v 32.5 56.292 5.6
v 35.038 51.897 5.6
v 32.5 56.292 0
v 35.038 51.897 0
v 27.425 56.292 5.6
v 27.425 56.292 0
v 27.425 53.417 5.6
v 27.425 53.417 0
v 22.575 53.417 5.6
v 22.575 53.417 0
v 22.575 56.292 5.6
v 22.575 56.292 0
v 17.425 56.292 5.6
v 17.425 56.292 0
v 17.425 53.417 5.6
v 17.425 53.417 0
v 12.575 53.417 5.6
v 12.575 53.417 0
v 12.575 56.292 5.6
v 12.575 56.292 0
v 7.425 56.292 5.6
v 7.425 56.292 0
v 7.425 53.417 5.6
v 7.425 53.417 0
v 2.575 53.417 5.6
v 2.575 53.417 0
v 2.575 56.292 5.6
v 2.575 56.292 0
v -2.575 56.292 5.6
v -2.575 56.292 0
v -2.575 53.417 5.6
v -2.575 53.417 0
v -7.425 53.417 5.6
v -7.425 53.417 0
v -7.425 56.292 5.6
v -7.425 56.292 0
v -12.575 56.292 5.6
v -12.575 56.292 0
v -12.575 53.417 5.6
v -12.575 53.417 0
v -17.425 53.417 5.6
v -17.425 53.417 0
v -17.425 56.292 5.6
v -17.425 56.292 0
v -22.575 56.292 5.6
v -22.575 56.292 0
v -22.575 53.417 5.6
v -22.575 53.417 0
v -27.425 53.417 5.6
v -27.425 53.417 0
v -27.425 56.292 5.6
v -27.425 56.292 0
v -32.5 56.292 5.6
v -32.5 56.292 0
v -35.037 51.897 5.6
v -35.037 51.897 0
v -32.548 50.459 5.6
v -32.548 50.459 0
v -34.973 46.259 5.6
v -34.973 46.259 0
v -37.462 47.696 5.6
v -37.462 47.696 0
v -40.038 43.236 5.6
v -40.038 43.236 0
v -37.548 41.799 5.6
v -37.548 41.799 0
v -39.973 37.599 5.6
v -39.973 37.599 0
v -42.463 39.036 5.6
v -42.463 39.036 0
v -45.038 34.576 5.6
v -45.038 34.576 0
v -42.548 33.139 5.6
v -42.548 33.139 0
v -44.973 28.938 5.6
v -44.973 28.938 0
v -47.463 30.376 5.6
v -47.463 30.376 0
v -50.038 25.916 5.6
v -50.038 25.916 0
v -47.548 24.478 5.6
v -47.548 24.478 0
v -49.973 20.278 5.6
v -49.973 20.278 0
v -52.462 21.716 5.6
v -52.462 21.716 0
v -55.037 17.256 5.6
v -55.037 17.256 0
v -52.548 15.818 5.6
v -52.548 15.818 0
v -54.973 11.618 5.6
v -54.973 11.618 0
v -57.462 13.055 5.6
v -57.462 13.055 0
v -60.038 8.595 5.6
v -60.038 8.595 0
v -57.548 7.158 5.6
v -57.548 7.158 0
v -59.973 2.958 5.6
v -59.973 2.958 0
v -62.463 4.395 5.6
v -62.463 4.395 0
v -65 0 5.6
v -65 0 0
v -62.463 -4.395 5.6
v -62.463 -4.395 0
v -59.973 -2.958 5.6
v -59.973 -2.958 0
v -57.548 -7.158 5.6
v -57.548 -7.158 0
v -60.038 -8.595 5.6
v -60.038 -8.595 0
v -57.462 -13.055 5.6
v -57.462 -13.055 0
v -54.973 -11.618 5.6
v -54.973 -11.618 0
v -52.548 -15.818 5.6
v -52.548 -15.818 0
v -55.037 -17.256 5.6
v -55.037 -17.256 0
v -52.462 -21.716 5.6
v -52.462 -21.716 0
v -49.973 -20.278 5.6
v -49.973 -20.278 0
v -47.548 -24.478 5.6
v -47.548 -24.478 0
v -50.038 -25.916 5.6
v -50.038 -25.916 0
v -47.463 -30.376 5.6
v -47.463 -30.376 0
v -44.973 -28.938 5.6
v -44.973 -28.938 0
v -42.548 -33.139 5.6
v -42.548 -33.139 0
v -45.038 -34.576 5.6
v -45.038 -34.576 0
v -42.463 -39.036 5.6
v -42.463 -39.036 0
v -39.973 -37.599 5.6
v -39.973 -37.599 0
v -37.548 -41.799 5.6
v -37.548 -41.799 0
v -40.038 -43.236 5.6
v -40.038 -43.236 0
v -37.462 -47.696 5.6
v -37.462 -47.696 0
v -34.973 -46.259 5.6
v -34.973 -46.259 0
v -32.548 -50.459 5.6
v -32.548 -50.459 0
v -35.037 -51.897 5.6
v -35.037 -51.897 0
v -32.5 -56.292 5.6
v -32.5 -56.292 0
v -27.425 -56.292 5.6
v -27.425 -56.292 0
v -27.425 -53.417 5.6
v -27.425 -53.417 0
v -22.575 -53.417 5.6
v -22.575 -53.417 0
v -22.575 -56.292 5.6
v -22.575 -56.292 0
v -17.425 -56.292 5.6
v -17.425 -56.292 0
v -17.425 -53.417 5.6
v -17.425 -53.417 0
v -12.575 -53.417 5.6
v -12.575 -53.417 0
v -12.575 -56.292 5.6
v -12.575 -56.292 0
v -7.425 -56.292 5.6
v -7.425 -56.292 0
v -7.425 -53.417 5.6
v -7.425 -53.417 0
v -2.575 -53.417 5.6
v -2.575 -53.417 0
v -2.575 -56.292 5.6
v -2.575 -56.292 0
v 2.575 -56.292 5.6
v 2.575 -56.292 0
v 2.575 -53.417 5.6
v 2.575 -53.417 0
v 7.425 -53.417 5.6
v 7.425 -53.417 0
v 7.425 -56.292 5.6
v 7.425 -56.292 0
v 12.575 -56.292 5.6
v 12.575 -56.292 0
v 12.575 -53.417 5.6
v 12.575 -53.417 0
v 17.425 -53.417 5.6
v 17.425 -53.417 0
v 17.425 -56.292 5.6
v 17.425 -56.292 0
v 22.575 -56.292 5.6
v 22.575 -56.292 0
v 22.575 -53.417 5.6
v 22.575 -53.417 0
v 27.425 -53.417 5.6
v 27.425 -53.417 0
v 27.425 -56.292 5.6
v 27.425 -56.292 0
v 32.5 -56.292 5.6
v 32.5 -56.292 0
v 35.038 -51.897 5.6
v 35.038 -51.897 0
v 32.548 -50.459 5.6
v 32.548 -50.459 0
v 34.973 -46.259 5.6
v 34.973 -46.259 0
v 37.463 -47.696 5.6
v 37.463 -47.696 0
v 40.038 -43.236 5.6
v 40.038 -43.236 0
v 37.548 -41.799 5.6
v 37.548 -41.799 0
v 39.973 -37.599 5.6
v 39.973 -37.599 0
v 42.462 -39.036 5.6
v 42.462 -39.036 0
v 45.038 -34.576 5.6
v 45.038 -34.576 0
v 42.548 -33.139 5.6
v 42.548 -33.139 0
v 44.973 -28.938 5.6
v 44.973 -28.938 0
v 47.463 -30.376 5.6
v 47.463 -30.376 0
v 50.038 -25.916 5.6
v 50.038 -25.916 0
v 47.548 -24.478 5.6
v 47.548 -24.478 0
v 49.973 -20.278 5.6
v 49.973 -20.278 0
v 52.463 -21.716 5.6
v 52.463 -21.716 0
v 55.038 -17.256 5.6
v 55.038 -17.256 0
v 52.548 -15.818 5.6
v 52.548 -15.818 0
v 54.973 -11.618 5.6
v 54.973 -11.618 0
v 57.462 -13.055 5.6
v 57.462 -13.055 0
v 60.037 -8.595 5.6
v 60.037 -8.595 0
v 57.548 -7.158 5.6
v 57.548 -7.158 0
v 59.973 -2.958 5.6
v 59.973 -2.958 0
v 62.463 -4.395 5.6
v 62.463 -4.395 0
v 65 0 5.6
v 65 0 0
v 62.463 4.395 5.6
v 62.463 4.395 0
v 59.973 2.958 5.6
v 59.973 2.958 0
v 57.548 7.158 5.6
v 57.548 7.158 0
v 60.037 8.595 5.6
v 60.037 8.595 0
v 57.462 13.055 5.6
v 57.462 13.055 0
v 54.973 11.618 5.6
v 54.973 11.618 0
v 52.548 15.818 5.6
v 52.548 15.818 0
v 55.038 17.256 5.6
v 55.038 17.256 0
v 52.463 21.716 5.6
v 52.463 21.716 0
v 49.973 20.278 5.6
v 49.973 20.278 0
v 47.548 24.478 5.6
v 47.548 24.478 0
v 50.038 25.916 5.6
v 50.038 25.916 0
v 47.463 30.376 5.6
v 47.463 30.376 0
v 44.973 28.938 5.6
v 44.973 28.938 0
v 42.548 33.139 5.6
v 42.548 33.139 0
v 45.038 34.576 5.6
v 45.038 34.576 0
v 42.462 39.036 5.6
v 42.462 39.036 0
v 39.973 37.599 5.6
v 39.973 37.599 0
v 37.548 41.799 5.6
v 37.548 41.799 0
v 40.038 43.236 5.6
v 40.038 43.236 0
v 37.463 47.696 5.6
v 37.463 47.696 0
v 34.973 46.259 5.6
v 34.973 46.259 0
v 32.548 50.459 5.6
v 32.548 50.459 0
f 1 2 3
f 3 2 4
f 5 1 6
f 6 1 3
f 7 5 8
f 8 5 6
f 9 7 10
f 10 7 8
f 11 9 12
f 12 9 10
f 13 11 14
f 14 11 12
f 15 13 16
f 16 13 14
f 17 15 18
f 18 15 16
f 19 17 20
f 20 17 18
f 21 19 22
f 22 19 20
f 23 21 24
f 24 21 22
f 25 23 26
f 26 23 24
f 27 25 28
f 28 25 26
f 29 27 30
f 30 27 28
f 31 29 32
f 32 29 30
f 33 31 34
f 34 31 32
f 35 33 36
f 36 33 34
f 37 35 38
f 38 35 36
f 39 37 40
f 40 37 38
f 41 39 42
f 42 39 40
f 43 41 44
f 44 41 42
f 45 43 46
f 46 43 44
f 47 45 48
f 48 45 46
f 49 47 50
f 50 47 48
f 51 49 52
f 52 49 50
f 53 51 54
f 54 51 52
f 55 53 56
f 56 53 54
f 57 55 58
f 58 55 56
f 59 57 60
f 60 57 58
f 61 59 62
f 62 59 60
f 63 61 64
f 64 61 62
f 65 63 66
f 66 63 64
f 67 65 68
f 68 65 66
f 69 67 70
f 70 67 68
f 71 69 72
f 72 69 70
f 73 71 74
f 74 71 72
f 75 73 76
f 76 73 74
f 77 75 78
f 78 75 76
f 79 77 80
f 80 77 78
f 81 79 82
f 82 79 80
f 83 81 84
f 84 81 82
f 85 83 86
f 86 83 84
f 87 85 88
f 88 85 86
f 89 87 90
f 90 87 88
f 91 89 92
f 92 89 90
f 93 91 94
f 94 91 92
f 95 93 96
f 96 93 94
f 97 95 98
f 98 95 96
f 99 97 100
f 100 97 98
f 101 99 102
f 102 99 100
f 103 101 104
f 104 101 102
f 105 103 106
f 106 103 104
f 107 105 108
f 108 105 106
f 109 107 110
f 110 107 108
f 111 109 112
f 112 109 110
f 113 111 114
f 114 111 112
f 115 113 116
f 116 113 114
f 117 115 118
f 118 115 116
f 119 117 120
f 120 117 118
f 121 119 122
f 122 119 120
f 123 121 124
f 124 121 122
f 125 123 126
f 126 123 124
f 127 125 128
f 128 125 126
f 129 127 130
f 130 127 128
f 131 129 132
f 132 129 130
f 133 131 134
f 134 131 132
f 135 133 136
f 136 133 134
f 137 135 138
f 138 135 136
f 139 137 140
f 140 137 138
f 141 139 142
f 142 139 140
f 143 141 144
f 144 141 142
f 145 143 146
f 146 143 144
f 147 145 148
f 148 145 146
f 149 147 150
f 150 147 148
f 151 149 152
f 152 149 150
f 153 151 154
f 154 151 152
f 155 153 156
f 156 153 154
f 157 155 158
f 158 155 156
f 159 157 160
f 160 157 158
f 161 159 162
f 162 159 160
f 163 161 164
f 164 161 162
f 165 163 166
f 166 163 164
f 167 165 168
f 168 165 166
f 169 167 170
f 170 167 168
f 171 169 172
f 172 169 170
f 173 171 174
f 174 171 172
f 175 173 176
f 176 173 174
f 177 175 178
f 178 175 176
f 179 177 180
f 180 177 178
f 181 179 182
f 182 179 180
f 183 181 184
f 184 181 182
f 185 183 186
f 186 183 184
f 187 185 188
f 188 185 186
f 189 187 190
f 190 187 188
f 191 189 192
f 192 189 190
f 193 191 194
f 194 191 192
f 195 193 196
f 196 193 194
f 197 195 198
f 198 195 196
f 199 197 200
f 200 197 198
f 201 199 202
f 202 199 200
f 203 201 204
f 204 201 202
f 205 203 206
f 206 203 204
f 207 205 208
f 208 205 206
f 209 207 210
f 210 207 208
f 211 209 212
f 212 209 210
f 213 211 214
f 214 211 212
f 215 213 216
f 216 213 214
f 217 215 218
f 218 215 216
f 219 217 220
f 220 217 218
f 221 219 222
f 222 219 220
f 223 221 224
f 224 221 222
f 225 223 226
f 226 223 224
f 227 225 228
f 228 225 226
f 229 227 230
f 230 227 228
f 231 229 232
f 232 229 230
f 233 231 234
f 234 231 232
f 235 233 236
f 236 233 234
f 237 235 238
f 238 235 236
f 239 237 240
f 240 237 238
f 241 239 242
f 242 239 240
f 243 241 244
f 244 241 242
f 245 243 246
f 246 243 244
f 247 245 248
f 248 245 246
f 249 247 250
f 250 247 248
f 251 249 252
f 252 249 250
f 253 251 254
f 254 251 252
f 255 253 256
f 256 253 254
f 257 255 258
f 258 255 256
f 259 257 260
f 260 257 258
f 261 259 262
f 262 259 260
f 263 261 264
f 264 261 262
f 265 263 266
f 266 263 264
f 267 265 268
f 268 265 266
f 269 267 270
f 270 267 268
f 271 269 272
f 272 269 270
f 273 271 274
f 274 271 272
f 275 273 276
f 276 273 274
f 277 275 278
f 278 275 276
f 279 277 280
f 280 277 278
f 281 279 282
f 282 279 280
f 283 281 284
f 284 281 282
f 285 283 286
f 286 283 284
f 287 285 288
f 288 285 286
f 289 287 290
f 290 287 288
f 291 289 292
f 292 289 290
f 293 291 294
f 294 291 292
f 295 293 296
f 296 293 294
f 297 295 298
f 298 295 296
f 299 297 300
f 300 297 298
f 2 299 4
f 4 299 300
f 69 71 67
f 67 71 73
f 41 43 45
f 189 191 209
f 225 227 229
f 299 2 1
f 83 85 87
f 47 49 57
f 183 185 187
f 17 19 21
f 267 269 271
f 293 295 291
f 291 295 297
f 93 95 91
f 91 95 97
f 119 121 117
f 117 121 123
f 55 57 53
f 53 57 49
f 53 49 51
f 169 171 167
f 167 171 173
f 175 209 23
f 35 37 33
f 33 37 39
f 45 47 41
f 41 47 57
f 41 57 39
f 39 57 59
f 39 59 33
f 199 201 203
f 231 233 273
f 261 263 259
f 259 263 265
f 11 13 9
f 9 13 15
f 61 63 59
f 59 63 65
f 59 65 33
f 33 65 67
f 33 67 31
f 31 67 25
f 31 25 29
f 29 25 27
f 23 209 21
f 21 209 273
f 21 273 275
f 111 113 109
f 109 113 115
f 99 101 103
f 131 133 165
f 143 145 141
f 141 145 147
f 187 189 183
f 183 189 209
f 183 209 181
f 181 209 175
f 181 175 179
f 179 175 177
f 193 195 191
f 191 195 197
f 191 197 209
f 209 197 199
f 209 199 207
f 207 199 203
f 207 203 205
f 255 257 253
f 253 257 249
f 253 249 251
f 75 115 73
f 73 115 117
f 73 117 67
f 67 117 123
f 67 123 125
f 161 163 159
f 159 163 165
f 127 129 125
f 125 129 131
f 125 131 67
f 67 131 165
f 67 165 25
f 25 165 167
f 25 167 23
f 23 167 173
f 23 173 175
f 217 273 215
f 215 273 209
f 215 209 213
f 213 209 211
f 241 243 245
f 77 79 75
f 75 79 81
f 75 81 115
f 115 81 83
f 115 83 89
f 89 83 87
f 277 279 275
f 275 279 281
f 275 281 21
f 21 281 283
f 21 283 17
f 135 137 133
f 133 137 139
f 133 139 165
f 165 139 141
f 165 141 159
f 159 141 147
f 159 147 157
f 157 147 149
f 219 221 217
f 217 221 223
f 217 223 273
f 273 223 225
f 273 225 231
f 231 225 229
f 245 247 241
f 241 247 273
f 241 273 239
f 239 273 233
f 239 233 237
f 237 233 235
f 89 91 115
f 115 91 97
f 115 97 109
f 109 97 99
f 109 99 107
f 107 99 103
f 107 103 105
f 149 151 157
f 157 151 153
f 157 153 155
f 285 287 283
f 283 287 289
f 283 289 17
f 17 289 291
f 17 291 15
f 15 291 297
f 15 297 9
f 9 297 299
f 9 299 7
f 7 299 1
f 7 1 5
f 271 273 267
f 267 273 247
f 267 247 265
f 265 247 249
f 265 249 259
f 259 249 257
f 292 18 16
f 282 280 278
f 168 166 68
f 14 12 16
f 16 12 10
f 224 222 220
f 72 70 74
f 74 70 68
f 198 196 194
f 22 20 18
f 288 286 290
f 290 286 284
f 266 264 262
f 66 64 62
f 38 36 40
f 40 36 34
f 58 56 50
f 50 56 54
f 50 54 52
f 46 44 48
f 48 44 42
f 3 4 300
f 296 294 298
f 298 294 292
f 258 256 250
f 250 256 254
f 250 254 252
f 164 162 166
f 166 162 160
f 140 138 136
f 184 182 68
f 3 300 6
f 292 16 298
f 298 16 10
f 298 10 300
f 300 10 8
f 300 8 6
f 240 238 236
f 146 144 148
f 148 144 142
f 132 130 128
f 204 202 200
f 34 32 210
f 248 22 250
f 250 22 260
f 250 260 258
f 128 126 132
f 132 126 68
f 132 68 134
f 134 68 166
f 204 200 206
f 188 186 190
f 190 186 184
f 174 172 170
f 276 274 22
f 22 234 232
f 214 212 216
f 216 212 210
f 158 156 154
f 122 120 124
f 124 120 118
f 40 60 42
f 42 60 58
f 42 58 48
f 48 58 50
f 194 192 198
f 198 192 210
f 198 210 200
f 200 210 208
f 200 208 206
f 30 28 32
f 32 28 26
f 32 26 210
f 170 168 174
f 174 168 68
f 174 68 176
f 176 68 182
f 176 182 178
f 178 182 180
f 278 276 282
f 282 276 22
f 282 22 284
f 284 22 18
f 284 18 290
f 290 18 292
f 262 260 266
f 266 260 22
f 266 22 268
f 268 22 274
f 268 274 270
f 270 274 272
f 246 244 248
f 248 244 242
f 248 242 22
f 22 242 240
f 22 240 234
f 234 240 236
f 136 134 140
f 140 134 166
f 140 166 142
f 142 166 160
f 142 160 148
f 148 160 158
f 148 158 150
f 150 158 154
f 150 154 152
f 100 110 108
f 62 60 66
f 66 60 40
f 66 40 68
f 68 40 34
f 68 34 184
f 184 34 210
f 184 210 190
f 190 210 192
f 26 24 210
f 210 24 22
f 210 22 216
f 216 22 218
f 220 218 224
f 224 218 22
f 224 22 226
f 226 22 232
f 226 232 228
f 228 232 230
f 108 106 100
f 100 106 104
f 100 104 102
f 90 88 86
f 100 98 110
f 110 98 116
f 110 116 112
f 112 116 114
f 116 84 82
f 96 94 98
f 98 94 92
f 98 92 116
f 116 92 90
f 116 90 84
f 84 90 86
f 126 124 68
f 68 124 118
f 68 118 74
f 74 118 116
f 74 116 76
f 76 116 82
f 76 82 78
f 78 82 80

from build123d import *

# Parameters (mm, degrees)
ESTRUSIONE_ESTRUSIONE1_DEPTH = 5.6


with BuildPart() as part:
    # Schizzo1 → Estrusione-Estrusione1 (new body)
    with BuildSketch(Plane.XY):
        Polygon((-17.425, 53.416651246), (-17.425, 56.291651246), (-22.575, 56.291651246), (-22.575, 53.416651246), (-27.425, 53.416651246), (-27.425, 56.291651246), (-32.5, 56.291651246), (-35.0375, 51.896572322), (-32.547676964, 50.459072322), (-34.972676964, 46.258849113), (-37.4625, 47.696349113), (-40.0375, 43.236318284), (-37.547676964, 41.798818284), (-39.972676964, 37.598595076), (-42.4625, 39.036095076), (-45.0375, 34.576064246), (-42.547676964, 33.138564246), (-44.972676964, 28.938341038), (-47.4625, 30.375841038), (-50.0375, 25.915810208), (-47.547676964, 24.478310208), (-49.972676964, 20.278087), (-52.4625, 21.715587), (-55.0375, 17.25555617), (-52.547676964, 15.81805617), (-54.972676964, 11.617832962), (-57.4625, 13.055332962), (-60.0375, 8.595302133), (-57.547676964, 7.157802133), (-59.972676964, 2.957578924), (-62.4625, 4.395078924), (-65, 0), (-62.4625, -4.395078924), (-59.972676964, -2.957578924), (-57.547676964, -7.157802133), (-60.0375, -8.595302133), (-57.4625, -13.055332962), (-54.972676964, -11.617832962), (-52.547676964, -15.81805617), (-55.0375, -17.25555617), (-52.4625, -21.715587), (-49.972676964, -20.278087), (-47.547676964, -24.478310208), (-50.0375, -25.915810208), (-47.4625, -30.375841038), (-44.972676964, -28.938341038), (-42.547676964, -33.138564246), (-45.0375, -34.576064246), (-42.4625, -39.036095076), (-39.972676964, -37.598595076), (-37.547676964, -41.798818284), (-40.0375, -43.236318284), (-37.4625, -47.696349113), (-34.972676964, -46.258849113), (-32.547676964, -50.459072322), (-35.0375, -51.896572322), (-32.5, -56.291651246), (-27.425, -56.291651246), (-27.425, -53.416651246), (-22.575, -53.416651246), (-22.575, -56.291651246), (-17.425, -56.291651246), (-17.425, -53.416651246), (-12.575, -53.416651246), (-12.575, -56.291651246), (-7.425, -56.291651246), (-7.425, -53.416651246), (-2.575, -53.416651246), (-2.575, -56.291651246), (2.575, -56.291651246), (2.575, -53.416651246), (7.425, -53.416651246), (7.425, -56.291651246), (12.575, -56.291651246), (12.575, -53.416651246), (17.425, -53.416651246), (17.425, -56.291651246), (22.575, -56.291651246), (22.575, -53.416651246), (27.425, -53.416651246), (27.425, -56.291651246), (32.5, -56.291651246), (35.0375, -51.896572322), (32.547676964, -50.459072322), (34.972676964, -46.258849113), (37.4625, -47.696349113), (40.0375, -43.236318284), (37.547676964, -41.798818284), (39.972676964, -37.598595076), (42.4625, -39.036095076), (45.0375, -34.576064246), (42.547676964, -33.138564246), (44.972676964, -28.938341038), (47.4625, -30.375841038), (50.0375, -25.915810208), (47.547676964, -24.478310208), (49.972676964, -20.278087), (52.4625, -21.715587), (55.0375, -17.25555617), (52.547676964, -15.81805617), (54.972676964, -11.617832962), (57.4625, -13.055332962), (60.0375, -8.595302133), (57.547676964, -7.157802133), (59.972676964, -2.957578924), (62.4625, -4.395078924), (65, 0), (62.4625, 4.395078924), (59.972676964, 2.957578924), (57.547676964, 7.157802133), (60.0375, 8.595302133), (57.4625, 13.055332962), (54.972676964, 11.617832962), (52.547676964, 15.81805617), (55.0375, 17.25555617), (52.4625, 21.715587), (49.972676964, 20.278087), (47.547676964, 24.478310208), (50.0375, 25.915810208), (47.4625, 30.375841038), (44.972676964, 28.938341038), (42.547676964, 33.138564246), (45.0375, 34.576064246), (42.4625, 39.036095076), (39.972676964, 37.598595076), (37.547676964, 41.798818284), (40.0375, 43.236318284), (37.4625, 47.696349113), (34.972676964, 46.258849113), (32.547676964, 50.459072322), (35.0375, 51.896572322), (32.5, 56.291651246), (27.425, 56.291651246), (27.425, 53.416651246), (22.575, 53.416651246), (22.575, 56.291651246), (17.425, 56.291651246), (17.425, 53.416651246), (12.575, 53.416651246), (12.575, 56.291651246), (7.425, 56.291651246), (7.425, 53.416651246), (2.575, 53.416651246), (2.575, 56.291651246), (-2.575, 56.291651246), (-2.575, 53.416651246), (-7.425, 53.416651246), (-7.425, 56.291651246), (-12.575, 56.291651246), (-12.575, 53.416651246), align=None)
    extrude(amount=ESTRUSIONE_ESTRUSIONE1_DEPTH)


solid = part.part
